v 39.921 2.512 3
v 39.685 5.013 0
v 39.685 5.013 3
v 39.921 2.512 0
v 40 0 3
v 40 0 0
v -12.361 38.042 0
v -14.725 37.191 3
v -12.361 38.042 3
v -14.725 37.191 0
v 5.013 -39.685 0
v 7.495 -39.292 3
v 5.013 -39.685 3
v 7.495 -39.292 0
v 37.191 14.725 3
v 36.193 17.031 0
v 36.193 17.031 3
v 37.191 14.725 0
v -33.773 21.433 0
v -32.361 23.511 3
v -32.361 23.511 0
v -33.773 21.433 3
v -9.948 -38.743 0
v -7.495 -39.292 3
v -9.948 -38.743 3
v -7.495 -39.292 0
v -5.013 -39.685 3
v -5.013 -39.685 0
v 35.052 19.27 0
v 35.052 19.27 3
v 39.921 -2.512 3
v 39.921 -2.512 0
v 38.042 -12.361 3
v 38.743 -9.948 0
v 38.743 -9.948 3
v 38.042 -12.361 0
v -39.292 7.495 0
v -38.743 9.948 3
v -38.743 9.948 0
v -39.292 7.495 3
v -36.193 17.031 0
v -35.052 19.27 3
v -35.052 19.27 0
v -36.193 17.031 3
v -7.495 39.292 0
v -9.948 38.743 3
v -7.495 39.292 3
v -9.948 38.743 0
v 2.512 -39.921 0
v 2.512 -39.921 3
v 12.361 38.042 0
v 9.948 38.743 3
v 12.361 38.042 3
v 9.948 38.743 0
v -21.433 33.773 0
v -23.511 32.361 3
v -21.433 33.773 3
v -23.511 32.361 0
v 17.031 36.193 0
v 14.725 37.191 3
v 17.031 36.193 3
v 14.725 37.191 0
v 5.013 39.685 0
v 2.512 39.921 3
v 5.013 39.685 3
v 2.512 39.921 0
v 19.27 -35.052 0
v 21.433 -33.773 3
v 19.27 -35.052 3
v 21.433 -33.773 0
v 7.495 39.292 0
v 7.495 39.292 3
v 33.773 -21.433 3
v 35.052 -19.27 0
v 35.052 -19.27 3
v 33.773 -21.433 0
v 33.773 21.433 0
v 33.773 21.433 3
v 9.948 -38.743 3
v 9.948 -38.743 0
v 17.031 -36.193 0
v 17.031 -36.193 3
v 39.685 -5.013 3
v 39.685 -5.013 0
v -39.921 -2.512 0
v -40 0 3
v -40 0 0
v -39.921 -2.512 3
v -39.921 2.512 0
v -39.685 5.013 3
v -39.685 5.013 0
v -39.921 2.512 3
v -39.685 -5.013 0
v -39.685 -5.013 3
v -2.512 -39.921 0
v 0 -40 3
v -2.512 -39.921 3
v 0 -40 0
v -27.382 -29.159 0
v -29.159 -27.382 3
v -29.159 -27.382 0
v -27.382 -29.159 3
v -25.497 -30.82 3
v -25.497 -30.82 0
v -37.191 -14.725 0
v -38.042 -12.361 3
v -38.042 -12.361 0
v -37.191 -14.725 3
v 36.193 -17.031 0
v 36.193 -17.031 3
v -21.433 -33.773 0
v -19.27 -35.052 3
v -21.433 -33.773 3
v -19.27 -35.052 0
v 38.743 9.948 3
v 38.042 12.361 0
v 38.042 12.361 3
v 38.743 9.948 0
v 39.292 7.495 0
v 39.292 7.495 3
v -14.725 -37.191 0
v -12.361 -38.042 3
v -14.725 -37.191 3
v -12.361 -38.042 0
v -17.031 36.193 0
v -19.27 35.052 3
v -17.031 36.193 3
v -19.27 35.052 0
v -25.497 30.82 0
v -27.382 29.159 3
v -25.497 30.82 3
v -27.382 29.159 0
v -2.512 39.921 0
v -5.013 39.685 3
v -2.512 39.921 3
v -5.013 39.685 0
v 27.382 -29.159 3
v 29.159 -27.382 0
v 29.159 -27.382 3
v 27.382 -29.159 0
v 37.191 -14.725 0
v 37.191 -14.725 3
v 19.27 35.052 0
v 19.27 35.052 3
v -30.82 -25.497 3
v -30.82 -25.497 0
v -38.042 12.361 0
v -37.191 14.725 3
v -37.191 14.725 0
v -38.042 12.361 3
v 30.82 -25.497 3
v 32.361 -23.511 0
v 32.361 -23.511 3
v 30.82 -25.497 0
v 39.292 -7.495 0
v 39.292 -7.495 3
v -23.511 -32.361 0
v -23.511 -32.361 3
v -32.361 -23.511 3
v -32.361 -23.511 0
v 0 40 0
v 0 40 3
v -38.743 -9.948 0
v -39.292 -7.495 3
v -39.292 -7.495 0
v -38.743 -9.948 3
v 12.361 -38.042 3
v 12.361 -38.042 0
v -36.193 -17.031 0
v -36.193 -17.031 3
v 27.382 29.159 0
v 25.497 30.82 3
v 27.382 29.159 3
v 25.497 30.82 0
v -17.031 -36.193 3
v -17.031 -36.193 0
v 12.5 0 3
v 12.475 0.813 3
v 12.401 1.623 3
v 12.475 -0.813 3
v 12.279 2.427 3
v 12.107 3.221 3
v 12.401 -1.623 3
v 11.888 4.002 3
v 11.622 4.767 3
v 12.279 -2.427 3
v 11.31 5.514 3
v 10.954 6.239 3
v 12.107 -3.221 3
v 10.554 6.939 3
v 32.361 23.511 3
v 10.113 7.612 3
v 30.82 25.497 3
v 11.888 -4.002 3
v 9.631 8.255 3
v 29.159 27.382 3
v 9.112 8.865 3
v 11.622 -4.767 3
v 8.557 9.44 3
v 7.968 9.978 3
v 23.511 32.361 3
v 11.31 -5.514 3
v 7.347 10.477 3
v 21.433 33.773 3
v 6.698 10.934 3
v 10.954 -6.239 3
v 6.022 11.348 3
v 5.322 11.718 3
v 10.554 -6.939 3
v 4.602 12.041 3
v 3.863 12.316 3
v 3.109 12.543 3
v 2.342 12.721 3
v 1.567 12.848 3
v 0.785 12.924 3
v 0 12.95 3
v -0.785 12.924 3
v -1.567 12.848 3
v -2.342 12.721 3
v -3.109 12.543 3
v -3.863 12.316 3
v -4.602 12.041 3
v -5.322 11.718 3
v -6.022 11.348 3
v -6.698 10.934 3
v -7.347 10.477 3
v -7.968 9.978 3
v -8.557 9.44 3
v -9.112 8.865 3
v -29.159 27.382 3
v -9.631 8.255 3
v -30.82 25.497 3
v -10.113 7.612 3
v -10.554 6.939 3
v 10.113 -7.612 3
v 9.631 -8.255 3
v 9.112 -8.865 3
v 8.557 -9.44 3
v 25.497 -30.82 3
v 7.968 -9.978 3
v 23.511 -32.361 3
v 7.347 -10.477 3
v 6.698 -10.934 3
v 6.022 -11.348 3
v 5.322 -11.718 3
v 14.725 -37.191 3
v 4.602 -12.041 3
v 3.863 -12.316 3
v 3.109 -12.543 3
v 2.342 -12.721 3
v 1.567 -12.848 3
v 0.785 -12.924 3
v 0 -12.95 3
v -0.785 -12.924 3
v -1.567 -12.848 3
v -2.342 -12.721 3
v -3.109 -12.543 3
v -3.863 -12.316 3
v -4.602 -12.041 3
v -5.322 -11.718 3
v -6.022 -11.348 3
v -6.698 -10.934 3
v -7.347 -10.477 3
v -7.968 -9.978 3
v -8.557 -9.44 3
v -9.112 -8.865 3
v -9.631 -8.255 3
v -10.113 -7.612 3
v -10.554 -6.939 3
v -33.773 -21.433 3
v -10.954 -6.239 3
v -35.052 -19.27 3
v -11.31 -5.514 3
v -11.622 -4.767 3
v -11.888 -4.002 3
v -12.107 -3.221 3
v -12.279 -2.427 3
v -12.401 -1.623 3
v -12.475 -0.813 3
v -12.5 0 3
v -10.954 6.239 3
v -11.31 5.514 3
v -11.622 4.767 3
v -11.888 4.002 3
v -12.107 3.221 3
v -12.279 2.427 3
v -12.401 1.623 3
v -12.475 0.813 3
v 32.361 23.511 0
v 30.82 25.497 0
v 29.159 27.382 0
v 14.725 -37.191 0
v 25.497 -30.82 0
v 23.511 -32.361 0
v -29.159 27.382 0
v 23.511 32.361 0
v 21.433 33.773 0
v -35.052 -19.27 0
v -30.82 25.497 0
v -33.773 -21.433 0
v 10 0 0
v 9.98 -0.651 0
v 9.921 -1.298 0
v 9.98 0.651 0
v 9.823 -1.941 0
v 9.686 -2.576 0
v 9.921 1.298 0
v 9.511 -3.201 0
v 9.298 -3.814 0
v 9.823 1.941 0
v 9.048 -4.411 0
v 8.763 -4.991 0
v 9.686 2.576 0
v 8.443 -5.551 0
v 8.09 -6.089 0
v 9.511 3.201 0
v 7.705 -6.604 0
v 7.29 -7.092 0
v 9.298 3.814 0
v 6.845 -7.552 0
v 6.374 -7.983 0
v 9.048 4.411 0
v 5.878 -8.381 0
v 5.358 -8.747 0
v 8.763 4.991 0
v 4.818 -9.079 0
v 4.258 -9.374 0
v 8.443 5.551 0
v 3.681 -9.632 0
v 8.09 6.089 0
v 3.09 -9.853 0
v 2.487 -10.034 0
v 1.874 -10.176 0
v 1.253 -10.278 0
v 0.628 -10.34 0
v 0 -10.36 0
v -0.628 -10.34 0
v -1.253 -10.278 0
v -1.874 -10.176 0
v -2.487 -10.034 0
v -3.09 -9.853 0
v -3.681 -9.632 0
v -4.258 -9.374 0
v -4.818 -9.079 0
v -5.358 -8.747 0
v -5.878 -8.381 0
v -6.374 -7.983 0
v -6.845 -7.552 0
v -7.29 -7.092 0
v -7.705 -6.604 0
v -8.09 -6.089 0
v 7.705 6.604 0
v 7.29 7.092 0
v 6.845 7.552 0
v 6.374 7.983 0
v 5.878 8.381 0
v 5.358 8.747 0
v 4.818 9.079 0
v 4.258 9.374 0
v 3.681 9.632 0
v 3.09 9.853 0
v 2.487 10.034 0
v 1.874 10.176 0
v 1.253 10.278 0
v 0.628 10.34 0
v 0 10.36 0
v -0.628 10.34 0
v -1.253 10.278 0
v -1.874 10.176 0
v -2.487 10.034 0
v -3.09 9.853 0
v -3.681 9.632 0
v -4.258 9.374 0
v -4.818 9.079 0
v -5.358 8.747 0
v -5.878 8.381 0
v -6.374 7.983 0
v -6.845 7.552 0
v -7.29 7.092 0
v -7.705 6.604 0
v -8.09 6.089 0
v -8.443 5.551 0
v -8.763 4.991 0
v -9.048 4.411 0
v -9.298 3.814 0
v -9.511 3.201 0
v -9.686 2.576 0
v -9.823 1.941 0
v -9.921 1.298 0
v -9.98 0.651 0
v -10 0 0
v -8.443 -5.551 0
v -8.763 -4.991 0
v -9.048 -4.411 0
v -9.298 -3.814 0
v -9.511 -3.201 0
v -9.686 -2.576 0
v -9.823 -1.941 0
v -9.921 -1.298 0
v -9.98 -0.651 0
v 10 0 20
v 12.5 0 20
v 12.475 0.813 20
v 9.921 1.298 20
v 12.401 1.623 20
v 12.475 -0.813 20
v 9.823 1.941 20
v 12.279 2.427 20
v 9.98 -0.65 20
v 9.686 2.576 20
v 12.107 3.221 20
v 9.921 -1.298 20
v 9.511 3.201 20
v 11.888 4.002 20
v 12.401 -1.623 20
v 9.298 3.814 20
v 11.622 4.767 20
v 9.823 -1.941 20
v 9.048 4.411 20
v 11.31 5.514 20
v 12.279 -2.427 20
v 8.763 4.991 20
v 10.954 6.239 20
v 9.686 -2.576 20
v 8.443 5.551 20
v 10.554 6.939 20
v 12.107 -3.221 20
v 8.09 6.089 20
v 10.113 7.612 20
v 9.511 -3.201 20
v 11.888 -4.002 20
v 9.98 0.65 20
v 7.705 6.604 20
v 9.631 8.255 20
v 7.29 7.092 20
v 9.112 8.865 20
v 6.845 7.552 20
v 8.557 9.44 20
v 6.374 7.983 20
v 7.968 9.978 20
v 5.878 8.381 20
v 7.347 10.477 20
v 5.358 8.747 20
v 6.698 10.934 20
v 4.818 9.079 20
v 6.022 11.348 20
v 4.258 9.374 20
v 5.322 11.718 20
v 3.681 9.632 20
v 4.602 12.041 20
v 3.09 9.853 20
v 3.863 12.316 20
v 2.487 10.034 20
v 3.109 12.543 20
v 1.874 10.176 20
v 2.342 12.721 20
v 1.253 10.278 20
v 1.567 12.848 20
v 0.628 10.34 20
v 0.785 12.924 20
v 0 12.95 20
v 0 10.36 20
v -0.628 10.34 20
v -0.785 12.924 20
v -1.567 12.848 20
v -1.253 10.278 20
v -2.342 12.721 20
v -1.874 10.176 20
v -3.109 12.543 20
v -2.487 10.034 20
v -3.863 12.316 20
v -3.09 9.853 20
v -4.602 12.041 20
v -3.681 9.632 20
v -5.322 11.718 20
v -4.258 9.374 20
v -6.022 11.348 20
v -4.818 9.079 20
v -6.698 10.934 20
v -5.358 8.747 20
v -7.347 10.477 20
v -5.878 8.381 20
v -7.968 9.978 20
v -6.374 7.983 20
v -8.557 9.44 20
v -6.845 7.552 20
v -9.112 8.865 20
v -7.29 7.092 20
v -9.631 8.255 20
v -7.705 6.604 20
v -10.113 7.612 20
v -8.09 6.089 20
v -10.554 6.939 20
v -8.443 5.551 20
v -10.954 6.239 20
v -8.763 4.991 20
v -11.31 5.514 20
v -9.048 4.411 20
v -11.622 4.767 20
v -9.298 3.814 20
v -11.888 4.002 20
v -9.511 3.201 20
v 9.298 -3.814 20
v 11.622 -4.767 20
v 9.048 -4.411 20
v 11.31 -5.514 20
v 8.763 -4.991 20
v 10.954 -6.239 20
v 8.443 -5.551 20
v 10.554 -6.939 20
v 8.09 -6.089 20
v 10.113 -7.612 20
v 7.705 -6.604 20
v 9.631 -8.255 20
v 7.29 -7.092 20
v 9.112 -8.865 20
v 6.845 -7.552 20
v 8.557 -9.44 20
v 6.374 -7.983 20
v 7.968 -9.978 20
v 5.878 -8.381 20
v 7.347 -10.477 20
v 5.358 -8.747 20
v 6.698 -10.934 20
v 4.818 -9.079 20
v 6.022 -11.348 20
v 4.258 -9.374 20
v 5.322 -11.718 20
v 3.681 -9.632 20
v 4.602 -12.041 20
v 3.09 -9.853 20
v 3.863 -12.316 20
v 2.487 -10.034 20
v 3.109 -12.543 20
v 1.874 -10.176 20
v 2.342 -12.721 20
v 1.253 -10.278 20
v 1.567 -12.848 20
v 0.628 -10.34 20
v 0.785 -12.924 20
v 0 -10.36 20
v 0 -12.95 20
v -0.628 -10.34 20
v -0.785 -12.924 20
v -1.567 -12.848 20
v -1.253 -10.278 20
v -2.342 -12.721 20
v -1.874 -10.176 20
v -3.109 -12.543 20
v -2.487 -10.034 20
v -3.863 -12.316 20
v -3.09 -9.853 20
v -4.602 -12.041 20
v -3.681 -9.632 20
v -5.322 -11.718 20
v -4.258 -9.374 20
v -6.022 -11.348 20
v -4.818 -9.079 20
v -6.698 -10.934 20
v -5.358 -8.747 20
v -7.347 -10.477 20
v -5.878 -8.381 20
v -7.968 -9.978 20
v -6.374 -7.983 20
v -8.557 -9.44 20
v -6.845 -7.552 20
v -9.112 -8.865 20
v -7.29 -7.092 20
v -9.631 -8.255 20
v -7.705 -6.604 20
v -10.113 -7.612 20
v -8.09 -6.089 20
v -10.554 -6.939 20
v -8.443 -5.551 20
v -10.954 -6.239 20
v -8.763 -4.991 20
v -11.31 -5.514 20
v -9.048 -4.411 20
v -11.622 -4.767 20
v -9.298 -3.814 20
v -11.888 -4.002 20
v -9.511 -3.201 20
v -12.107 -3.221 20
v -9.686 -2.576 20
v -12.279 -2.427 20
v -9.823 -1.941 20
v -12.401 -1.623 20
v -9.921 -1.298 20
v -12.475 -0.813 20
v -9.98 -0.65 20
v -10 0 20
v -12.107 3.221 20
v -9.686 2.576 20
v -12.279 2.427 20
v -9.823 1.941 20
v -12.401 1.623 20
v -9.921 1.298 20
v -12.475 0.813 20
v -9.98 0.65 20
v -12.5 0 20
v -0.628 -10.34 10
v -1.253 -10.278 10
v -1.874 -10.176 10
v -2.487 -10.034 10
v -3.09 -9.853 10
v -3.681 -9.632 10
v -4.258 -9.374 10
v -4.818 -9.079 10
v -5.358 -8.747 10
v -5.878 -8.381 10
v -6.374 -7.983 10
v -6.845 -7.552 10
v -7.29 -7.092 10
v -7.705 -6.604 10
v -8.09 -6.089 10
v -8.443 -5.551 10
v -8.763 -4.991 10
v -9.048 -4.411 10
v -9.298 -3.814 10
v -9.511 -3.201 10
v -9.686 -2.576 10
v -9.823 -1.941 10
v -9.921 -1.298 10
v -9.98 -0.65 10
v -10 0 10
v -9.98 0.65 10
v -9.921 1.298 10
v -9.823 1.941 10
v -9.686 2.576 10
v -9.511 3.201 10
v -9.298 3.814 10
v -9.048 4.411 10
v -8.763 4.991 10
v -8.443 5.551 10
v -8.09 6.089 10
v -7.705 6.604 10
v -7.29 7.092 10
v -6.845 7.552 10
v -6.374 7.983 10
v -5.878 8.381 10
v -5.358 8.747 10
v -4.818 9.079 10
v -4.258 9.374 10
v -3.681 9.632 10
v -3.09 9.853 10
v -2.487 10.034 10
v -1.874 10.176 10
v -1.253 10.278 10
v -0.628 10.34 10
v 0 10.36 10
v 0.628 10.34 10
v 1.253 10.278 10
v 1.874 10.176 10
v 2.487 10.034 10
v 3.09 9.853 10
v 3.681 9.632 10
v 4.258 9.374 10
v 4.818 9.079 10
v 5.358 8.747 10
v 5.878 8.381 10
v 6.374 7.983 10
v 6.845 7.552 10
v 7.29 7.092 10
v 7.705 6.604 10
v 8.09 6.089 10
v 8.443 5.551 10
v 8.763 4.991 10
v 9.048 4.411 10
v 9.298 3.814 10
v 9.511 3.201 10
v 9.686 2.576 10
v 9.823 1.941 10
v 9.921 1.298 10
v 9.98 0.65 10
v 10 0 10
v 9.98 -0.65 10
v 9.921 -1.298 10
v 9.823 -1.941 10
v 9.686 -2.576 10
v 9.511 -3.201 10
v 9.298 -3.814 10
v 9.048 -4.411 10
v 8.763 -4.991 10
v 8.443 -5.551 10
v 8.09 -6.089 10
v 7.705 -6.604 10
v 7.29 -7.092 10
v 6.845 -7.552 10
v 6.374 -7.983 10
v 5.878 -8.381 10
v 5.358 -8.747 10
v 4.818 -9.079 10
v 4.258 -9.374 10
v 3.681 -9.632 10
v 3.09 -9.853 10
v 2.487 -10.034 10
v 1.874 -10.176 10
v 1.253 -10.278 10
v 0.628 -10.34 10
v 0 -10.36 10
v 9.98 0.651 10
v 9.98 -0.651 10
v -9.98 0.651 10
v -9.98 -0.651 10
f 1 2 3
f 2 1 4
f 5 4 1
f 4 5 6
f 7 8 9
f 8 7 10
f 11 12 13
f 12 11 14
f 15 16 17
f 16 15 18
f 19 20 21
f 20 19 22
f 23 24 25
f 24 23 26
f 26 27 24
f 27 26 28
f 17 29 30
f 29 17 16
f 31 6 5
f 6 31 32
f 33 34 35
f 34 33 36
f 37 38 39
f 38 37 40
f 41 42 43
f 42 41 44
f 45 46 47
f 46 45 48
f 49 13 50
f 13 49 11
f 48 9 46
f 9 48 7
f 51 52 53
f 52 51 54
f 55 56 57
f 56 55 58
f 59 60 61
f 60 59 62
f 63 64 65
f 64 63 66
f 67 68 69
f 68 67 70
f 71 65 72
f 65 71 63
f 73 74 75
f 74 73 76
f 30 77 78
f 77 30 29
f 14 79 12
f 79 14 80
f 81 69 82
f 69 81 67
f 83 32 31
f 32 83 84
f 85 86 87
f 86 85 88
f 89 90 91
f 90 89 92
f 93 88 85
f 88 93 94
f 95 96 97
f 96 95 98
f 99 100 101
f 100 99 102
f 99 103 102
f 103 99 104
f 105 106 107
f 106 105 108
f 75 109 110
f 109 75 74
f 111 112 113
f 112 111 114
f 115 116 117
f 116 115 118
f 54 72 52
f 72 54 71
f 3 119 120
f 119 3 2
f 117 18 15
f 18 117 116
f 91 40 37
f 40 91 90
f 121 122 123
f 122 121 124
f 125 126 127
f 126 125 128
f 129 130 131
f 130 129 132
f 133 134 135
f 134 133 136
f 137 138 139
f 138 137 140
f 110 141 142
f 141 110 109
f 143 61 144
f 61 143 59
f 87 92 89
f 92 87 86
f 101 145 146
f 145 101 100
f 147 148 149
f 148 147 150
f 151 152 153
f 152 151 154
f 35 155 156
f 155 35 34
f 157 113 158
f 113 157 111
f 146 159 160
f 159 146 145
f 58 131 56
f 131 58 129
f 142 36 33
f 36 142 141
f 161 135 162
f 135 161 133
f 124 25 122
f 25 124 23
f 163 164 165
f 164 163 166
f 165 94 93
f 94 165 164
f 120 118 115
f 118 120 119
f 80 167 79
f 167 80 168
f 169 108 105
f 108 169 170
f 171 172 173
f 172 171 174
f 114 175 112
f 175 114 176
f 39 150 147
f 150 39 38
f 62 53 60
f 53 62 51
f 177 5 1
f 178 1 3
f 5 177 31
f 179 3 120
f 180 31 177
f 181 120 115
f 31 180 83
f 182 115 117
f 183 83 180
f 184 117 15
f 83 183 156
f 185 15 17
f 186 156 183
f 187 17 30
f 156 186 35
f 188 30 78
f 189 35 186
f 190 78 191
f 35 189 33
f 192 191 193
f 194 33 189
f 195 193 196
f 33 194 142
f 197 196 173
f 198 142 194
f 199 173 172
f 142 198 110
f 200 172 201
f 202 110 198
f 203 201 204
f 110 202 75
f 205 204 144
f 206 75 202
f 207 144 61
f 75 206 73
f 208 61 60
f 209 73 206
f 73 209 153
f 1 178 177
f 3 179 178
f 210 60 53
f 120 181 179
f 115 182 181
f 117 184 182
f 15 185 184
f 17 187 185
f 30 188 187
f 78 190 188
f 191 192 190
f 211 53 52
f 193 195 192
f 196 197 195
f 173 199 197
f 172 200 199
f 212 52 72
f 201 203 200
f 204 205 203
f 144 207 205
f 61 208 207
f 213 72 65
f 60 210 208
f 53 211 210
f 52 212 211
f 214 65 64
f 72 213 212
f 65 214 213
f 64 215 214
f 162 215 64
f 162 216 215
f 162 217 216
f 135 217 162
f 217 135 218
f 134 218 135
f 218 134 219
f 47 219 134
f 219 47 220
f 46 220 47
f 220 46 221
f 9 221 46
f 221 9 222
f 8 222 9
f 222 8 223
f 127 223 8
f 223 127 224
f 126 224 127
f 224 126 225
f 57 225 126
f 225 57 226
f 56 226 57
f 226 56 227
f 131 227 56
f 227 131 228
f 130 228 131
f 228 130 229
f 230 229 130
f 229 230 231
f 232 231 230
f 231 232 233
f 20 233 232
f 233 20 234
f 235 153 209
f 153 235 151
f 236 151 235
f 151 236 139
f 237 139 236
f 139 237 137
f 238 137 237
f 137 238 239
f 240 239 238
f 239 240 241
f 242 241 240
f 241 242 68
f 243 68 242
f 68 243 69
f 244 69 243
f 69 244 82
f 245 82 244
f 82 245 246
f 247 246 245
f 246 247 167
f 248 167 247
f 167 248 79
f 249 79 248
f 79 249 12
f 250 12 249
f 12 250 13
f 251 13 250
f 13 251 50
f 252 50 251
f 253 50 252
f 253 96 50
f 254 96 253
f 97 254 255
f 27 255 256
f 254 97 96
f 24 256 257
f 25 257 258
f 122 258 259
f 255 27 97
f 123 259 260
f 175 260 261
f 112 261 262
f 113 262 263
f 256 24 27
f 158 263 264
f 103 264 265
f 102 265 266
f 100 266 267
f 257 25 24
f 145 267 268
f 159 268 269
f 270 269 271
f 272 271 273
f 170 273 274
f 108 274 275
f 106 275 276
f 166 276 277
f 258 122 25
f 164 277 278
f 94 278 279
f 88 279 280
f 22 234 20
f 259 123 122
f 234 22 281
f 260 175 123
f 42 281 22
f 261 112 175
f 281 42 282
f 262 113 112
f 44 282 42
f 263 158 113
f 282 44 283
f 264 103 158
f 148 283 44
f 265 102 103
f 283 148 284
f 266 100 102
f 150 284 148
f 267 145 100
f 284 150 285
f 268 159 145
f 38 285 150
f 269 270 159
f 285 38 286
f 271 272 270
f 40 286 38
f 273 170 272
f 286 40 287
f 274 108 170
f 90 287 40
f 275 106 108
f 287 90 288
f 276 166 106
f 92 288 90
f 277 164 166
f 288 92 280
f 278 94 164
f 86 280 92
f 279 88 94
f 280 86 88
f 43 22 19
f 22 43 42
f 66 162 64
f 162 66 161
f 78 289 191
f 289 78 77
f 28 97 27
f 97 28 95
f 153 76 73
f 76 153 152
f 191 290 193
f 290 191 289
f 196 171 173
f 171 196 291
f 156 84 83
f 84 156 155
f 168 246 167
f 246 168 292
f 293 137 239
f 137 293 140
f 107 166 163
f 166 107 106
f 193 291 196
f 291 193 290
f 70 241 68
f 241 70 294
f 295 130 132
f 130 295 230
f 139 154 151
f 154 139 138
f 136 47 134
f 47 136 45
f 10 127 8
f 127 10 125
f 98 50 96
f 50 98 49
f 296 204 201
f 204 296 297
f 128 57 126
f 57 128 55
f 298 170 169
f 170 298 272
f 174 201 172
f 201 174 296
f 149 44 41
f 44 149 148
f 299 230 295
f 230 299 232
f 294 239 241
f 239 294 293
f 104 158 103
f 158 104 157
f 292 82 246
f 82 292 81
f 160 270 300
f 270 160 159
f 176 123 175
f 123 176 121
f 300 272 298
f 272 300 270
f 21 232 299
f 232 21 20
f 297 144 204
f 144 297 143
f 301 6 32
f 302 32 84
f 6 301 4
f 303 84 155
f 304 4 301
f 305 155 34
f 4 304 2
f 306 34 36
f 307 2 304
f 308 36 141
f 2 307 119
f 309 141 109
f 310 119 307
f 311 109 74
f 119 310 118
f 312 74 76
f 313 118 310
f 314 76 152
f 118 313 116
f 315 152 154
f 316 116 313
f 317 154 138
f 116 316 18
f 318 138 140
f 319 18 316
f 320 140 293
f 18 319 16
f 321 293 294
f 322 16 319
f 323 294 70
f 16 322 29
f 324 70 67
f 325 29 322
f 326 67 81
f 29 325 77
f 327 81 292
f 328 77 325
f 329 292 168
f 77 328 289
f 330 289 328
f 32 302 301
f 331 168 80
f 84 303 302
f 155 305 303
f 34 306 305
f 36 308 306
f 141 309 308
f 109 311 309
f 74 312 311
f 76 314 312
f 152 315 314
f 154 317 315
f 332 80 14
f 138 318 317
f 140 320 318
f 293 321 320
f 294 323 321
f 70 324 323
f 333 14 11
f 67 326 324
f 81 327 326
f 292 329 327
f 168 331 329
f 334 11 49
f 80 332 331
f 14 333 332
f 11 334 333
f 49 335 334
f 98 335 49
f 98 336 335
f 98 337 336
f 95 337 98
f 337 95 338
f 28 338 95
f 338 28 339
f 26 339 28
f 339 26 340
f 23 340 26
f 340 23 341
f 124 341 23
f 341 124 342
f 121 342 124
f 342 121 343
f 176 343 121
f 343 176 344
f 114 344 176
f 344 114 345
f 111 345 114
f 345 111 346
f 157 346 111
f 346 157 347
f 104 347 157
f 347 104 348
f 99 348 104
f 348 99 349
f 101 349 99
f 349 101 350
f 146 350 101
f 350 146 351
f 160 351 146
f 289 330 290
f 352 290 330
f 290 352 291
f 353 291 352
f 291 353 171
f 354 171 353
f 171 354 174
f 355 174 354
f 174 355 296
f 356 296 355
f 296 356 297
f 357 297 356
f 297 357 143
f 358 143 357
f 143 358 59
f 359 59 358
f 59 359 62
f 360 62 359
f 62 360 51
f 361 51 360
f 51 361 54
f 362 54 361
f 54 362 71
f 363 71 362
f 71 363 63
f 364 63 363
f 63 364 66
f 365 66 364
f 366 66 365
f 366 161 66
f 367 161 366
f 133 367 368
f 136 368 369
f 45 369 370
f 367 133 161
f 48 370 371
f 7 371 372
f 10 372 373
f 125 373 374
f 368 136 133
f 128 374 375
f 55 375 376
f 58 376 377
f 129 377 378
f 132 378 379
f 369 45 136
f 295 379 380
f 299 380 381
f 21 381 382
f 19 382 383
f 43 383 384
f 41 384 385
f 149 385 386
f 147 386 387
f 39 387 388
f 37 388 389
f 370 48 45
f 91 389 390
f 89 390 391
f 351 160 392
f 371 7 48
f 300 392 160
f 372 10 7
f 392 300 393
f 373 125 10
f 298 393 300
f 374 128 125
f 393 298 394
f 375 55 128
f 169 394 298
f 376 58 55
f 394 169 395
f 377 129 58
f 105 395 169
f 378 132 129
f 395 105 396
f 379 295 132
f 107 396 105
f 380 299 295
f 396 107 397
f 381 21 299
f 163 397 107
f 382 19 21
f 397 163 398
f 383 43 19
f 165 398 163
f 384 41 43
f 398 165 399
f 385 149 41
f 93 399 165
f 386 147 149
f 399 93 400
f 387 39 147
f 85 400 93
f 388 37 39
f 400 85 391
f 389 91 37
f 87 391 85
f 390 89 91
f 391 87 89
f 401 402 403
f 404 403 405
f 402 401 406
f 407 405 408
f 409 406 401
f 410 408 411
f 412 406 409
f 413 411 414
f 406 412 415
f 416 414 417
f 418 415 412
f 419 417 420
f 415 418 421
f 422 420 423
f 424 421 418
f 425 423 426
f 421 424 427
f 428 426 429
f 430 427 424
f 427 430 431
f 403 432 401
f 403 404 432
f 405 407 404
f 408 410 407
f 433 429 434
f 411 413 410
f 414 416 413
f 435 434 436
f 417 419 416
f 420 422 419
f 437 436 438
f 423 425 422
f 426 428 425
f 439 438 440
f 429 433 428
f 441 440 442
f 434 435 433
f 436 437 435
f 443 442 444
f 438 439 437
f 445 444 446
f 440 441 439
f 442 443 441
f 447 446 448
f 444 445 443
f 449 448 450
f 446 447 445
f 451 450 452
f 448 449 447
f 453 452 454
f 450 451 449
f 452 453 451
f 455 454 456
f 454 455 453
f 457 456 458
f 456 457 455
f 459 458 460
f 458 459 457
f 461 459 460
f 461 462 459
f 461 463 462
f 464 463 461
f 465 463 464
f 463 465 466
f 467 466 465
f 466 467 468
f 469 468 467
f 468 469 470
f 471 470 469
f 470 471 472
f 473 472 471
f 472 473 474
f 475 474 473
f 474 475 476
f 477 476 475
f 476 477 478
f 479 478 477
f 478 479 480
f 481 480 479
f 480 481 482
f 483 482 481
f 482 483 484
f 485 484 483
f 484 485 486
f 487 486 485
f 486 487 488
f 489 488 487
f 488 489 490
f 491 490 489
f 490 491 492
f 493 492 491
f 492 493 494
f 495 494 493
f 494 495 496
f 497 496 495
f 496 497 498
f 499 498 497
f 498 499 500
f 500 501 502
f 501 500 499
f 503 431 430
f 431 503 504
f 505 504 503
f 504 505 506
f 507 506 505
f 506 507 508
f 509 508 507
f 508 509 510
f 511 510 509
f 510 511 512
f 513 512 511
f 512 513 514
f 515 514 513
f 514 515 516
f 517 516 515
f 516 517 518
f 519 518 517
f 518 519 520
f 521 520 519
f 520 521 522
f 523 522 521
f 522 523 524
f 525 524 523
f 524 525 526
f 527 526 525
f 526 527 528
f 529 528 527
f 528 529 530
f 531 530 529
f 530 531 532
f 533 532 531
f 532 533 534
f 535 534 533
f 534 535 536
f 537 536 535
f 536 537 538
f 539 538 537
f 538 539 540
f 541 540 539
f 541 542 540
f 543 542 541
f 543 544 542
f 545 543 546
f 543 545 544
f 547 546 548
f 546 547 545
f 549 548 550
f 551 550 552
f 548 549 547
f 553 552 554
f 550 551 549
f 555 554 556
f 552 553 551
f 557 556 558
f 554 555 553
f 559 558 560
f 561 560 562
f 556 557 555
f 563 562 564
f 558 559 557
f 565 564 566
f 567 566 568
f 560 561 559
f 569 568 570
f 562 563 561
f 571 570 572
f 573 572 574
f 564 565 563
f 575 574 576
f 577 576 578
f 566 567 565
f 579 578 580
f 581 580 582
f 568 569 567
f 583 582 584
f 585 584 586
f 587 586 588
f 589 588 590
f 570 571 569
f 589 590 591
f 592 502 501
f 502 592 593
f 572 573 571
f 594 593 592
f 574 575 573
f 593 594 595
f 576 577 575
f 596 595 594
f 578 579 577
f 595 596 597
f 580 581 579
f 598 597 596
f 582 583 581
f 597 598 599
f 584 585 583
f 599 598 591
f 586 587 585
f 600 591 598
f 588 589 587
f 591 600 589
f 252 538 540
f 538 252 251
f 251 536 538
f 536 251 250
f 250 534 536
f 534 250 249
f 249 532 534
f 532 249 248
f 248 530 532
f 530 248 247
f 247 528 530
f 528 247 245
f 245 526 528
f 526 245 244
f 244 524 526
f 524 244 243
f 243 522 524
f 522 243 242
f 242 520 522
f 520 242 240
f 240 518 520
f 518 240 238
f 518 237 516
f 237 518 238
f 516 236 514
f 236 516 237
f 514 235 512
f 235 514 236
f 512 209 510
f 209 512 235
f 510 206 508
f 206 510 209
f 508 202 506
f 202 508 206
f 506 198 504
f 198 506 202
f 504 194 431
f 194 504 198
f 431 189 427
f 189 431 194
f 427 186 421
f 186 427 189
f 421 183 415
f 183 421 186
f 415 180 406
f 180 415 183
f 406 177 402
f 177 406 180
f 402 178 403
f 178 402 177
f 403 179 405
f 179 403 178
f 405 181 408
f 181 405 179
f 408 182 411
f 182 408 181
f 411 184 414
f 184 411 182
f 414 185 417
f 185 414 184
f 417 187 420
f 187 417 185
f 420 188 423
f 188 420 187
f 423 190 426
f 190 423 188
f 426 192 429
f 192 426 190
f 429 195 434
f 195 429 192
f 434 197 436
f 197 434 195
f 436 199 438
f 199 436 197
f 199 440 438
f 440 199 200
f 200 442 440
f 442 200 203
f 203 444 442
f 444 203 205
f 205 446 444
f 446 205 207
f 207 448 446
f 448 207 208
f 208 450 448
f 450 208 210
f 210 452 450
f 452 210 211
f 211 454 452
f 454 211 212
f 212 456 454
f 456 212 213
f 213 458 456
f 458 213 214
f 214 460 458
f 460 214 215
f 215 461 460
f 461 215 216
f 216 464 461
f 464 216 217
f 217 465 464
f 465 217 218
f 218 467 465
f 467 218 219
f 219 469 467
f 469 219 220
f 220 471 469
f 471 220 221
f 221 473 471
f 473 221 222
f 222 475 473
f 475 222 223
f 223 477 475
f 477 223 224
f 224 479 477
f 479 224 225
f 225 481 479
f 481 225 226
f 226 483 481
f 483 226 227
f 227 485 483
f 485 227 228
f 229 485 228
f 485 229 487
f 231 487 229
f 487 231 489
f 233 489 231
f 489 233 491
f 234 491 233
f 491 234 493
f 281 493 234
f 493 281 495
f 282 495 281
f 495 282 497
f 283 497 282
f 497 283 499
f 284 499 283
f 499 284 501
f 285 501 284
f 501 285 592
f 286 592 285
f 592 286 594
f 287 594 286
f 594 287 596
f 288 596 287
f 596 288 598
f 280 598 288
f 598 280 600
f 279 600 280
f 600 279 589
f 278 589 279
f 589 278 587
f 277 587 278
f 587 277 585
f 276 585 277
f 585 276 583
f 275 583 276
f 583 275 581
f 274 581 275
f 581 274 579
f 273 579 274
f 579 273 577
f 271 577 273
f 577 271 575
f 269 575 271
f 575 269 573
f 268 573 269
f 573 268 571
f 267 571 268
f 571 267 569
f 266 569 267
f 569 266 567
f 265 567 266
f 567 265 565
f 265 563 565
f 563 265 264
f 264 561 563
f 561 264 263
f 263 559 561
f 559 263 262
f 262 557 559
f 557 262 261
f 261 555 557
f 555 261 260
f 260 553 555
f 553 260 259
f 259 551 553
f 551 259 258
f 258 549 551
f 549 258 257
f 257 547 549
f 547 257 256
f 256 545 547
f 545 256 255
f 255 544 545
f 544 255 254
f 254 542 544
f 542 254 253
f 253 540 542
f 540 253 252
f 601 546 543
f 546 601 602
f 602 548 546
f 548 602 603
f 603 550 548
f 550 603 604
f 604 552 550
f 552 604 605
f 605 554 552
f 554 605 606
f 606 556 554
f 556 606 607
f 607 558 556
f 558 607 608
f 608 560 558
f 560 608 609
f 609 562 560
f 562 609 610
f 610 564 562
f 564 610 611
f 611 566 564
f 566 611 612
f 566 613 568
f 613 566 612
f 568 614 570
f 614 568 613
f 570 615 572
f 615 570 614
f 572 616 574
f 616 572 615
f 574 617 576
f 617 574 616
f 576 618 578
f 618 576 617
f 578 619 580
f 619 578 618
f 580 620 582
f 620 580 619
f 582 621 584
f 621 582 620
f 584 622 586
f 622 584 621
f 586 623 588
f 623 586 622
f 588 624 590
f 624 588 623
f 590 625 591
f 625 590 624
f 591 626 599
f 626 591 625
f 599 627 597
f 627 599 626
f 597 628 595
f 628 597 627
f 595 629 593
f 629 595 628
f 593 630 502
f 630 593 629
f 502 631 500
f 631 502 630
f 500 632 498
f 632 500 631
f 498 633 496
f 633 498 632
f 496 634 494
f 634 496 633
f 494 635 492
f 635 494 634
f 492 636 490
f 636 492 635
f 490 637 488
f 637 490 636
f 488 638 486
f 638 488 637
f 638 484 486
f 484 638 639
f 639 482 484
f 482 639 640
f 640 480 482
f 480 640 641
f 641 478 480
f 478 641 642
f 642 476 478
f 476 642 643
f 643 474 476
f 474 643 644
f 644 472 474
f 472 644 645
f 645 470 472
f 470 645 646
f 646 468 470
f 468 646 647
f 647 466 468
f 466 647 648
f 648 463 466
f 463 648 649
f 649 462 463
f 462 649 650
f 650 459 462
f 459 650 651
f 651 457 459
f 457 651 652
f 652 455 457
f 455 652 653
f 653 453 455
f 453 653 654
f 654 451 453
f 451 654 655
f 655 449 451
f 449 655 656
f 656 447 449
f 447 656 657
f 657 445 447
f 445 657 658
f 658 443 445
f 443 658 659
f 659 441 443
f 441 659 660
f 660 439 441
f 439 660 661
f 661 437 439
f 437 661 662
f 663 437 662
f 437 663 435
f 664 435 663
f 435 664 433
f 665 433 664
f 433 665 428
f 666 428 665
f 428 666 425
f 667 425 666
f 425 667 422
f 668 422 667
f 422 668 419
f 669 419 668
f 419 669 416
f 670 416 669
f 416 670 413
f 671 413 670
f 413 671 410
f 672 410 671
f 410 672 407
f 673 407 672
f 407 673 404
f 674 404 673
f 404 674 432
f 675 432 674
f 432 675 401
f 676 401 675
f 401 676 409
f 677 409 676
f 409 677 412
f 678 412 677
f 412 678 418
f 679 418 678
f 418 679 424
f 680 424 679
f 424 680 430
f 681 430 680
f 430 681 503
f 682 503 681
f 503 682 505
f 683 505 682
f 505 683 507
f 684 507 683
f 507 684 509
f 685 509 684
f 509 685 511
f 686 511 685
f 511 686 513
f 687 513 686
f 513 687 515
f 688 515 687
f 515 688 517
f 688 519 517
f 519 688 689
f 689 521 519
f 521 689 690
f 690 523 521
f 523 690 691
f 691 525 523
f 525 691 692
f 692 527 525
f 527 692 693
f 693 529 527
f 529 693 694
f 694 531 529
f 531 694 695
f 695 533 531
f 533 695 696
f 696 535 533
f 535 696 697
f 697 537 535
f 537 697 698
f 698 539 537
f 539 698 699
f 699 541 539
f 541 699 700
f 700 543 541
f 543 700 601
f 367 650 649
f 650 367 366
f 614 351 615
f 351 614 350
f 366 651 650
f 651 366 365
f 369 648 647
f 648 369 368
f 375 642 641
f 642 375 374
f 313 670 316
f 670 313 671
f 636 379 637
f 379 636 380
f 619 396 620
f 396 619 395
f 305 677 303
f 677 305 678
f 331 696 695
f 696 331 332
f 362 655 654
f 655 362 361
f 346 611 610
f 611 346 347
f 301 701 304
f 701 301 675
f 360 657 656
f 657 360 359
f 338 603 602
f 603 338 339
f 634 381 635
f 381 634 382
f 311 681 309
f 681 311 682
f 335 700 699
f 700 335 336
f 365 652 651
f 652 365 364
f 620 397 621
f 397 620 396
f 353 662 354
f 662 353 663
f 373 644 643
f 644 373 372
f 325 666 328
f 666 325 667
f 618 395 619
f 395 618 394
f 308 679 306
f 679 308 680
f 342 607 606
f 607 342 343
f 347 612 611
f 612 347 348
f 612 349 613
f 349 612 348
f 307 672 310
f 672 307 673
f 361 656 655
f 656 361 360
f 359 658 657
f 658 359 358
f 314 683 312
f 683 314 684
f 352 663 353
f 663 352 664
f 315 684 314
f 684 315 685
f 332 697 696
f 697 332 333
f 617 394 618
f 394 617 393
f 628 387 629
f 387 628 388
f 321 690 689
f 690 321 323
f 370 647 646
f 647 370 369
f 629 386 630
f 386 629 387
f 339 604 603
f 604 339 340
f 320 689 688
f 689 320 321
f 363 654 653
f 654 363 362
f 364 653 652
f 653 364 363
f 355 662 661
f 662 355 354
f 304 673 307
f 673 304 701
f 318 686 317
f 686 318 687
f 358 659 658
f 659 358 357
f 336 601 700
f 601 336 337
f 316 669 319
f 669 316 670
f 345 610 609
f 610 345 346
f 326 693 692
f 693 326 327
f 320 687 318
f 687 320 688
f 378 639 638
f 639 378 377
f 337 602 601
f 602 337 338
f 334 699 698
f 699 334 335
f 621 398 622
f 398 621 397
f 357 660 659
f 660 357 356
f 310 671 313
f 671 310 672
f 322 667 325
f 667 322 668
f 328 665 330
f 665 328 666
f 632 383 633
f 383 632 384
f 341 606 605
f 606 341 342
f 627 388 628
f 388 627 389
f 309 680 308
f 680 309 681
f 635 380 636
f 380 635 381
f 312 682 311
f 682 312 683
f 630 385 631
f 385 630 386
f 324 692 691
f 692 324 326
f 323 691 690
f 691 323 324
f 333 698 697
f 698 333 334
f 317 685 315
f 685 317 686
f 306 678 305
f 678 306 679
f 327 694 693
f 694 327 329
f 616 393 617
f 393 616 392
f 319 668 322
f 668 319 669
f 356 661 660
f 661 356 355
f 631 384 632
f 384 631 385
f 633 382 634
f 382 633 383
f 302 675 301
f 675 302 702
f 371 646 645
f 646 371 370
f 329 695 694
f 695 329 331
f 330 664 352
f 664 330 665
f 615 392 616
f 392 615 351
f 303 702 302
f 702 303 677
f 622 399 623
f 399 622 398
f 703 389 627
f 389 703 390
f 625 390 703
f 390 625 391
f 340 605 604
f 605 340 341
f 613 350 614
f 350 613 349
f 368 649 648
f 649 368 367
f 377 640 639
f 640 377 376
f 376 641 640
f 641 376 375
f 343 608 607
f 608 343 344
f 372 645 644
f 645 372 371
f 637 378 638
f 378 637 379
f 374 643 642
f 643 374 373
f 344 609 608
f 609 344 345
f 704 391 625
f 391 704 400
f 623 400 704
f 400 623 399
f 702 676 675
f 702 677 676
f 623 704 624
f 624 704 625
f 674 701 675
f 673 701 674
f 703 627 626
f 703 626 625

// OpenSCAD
difference () {
  union () {
    linear_extrude (height=3){
      circle ($fn=100, r=40);
    }
    linear_extrude (height=20){
      difference () {
        resize ([25, 25.9, 1]){
          circle ($fn=100, r=1);
        }
        scale ([0.8, 0.8, 0.8]) {
          resize ([25, 25.9, 1]){
            circle ($fn=100, r=1);
          }
        }
      }
    }
  }
  linear_extrude (height=20, center=true){
    scale ([0.8, 0.8, 0.8]) {
      resize ([25, 25.9, 1]){
        circle ($fn=100, r=1);
      }
    }
  }
}
